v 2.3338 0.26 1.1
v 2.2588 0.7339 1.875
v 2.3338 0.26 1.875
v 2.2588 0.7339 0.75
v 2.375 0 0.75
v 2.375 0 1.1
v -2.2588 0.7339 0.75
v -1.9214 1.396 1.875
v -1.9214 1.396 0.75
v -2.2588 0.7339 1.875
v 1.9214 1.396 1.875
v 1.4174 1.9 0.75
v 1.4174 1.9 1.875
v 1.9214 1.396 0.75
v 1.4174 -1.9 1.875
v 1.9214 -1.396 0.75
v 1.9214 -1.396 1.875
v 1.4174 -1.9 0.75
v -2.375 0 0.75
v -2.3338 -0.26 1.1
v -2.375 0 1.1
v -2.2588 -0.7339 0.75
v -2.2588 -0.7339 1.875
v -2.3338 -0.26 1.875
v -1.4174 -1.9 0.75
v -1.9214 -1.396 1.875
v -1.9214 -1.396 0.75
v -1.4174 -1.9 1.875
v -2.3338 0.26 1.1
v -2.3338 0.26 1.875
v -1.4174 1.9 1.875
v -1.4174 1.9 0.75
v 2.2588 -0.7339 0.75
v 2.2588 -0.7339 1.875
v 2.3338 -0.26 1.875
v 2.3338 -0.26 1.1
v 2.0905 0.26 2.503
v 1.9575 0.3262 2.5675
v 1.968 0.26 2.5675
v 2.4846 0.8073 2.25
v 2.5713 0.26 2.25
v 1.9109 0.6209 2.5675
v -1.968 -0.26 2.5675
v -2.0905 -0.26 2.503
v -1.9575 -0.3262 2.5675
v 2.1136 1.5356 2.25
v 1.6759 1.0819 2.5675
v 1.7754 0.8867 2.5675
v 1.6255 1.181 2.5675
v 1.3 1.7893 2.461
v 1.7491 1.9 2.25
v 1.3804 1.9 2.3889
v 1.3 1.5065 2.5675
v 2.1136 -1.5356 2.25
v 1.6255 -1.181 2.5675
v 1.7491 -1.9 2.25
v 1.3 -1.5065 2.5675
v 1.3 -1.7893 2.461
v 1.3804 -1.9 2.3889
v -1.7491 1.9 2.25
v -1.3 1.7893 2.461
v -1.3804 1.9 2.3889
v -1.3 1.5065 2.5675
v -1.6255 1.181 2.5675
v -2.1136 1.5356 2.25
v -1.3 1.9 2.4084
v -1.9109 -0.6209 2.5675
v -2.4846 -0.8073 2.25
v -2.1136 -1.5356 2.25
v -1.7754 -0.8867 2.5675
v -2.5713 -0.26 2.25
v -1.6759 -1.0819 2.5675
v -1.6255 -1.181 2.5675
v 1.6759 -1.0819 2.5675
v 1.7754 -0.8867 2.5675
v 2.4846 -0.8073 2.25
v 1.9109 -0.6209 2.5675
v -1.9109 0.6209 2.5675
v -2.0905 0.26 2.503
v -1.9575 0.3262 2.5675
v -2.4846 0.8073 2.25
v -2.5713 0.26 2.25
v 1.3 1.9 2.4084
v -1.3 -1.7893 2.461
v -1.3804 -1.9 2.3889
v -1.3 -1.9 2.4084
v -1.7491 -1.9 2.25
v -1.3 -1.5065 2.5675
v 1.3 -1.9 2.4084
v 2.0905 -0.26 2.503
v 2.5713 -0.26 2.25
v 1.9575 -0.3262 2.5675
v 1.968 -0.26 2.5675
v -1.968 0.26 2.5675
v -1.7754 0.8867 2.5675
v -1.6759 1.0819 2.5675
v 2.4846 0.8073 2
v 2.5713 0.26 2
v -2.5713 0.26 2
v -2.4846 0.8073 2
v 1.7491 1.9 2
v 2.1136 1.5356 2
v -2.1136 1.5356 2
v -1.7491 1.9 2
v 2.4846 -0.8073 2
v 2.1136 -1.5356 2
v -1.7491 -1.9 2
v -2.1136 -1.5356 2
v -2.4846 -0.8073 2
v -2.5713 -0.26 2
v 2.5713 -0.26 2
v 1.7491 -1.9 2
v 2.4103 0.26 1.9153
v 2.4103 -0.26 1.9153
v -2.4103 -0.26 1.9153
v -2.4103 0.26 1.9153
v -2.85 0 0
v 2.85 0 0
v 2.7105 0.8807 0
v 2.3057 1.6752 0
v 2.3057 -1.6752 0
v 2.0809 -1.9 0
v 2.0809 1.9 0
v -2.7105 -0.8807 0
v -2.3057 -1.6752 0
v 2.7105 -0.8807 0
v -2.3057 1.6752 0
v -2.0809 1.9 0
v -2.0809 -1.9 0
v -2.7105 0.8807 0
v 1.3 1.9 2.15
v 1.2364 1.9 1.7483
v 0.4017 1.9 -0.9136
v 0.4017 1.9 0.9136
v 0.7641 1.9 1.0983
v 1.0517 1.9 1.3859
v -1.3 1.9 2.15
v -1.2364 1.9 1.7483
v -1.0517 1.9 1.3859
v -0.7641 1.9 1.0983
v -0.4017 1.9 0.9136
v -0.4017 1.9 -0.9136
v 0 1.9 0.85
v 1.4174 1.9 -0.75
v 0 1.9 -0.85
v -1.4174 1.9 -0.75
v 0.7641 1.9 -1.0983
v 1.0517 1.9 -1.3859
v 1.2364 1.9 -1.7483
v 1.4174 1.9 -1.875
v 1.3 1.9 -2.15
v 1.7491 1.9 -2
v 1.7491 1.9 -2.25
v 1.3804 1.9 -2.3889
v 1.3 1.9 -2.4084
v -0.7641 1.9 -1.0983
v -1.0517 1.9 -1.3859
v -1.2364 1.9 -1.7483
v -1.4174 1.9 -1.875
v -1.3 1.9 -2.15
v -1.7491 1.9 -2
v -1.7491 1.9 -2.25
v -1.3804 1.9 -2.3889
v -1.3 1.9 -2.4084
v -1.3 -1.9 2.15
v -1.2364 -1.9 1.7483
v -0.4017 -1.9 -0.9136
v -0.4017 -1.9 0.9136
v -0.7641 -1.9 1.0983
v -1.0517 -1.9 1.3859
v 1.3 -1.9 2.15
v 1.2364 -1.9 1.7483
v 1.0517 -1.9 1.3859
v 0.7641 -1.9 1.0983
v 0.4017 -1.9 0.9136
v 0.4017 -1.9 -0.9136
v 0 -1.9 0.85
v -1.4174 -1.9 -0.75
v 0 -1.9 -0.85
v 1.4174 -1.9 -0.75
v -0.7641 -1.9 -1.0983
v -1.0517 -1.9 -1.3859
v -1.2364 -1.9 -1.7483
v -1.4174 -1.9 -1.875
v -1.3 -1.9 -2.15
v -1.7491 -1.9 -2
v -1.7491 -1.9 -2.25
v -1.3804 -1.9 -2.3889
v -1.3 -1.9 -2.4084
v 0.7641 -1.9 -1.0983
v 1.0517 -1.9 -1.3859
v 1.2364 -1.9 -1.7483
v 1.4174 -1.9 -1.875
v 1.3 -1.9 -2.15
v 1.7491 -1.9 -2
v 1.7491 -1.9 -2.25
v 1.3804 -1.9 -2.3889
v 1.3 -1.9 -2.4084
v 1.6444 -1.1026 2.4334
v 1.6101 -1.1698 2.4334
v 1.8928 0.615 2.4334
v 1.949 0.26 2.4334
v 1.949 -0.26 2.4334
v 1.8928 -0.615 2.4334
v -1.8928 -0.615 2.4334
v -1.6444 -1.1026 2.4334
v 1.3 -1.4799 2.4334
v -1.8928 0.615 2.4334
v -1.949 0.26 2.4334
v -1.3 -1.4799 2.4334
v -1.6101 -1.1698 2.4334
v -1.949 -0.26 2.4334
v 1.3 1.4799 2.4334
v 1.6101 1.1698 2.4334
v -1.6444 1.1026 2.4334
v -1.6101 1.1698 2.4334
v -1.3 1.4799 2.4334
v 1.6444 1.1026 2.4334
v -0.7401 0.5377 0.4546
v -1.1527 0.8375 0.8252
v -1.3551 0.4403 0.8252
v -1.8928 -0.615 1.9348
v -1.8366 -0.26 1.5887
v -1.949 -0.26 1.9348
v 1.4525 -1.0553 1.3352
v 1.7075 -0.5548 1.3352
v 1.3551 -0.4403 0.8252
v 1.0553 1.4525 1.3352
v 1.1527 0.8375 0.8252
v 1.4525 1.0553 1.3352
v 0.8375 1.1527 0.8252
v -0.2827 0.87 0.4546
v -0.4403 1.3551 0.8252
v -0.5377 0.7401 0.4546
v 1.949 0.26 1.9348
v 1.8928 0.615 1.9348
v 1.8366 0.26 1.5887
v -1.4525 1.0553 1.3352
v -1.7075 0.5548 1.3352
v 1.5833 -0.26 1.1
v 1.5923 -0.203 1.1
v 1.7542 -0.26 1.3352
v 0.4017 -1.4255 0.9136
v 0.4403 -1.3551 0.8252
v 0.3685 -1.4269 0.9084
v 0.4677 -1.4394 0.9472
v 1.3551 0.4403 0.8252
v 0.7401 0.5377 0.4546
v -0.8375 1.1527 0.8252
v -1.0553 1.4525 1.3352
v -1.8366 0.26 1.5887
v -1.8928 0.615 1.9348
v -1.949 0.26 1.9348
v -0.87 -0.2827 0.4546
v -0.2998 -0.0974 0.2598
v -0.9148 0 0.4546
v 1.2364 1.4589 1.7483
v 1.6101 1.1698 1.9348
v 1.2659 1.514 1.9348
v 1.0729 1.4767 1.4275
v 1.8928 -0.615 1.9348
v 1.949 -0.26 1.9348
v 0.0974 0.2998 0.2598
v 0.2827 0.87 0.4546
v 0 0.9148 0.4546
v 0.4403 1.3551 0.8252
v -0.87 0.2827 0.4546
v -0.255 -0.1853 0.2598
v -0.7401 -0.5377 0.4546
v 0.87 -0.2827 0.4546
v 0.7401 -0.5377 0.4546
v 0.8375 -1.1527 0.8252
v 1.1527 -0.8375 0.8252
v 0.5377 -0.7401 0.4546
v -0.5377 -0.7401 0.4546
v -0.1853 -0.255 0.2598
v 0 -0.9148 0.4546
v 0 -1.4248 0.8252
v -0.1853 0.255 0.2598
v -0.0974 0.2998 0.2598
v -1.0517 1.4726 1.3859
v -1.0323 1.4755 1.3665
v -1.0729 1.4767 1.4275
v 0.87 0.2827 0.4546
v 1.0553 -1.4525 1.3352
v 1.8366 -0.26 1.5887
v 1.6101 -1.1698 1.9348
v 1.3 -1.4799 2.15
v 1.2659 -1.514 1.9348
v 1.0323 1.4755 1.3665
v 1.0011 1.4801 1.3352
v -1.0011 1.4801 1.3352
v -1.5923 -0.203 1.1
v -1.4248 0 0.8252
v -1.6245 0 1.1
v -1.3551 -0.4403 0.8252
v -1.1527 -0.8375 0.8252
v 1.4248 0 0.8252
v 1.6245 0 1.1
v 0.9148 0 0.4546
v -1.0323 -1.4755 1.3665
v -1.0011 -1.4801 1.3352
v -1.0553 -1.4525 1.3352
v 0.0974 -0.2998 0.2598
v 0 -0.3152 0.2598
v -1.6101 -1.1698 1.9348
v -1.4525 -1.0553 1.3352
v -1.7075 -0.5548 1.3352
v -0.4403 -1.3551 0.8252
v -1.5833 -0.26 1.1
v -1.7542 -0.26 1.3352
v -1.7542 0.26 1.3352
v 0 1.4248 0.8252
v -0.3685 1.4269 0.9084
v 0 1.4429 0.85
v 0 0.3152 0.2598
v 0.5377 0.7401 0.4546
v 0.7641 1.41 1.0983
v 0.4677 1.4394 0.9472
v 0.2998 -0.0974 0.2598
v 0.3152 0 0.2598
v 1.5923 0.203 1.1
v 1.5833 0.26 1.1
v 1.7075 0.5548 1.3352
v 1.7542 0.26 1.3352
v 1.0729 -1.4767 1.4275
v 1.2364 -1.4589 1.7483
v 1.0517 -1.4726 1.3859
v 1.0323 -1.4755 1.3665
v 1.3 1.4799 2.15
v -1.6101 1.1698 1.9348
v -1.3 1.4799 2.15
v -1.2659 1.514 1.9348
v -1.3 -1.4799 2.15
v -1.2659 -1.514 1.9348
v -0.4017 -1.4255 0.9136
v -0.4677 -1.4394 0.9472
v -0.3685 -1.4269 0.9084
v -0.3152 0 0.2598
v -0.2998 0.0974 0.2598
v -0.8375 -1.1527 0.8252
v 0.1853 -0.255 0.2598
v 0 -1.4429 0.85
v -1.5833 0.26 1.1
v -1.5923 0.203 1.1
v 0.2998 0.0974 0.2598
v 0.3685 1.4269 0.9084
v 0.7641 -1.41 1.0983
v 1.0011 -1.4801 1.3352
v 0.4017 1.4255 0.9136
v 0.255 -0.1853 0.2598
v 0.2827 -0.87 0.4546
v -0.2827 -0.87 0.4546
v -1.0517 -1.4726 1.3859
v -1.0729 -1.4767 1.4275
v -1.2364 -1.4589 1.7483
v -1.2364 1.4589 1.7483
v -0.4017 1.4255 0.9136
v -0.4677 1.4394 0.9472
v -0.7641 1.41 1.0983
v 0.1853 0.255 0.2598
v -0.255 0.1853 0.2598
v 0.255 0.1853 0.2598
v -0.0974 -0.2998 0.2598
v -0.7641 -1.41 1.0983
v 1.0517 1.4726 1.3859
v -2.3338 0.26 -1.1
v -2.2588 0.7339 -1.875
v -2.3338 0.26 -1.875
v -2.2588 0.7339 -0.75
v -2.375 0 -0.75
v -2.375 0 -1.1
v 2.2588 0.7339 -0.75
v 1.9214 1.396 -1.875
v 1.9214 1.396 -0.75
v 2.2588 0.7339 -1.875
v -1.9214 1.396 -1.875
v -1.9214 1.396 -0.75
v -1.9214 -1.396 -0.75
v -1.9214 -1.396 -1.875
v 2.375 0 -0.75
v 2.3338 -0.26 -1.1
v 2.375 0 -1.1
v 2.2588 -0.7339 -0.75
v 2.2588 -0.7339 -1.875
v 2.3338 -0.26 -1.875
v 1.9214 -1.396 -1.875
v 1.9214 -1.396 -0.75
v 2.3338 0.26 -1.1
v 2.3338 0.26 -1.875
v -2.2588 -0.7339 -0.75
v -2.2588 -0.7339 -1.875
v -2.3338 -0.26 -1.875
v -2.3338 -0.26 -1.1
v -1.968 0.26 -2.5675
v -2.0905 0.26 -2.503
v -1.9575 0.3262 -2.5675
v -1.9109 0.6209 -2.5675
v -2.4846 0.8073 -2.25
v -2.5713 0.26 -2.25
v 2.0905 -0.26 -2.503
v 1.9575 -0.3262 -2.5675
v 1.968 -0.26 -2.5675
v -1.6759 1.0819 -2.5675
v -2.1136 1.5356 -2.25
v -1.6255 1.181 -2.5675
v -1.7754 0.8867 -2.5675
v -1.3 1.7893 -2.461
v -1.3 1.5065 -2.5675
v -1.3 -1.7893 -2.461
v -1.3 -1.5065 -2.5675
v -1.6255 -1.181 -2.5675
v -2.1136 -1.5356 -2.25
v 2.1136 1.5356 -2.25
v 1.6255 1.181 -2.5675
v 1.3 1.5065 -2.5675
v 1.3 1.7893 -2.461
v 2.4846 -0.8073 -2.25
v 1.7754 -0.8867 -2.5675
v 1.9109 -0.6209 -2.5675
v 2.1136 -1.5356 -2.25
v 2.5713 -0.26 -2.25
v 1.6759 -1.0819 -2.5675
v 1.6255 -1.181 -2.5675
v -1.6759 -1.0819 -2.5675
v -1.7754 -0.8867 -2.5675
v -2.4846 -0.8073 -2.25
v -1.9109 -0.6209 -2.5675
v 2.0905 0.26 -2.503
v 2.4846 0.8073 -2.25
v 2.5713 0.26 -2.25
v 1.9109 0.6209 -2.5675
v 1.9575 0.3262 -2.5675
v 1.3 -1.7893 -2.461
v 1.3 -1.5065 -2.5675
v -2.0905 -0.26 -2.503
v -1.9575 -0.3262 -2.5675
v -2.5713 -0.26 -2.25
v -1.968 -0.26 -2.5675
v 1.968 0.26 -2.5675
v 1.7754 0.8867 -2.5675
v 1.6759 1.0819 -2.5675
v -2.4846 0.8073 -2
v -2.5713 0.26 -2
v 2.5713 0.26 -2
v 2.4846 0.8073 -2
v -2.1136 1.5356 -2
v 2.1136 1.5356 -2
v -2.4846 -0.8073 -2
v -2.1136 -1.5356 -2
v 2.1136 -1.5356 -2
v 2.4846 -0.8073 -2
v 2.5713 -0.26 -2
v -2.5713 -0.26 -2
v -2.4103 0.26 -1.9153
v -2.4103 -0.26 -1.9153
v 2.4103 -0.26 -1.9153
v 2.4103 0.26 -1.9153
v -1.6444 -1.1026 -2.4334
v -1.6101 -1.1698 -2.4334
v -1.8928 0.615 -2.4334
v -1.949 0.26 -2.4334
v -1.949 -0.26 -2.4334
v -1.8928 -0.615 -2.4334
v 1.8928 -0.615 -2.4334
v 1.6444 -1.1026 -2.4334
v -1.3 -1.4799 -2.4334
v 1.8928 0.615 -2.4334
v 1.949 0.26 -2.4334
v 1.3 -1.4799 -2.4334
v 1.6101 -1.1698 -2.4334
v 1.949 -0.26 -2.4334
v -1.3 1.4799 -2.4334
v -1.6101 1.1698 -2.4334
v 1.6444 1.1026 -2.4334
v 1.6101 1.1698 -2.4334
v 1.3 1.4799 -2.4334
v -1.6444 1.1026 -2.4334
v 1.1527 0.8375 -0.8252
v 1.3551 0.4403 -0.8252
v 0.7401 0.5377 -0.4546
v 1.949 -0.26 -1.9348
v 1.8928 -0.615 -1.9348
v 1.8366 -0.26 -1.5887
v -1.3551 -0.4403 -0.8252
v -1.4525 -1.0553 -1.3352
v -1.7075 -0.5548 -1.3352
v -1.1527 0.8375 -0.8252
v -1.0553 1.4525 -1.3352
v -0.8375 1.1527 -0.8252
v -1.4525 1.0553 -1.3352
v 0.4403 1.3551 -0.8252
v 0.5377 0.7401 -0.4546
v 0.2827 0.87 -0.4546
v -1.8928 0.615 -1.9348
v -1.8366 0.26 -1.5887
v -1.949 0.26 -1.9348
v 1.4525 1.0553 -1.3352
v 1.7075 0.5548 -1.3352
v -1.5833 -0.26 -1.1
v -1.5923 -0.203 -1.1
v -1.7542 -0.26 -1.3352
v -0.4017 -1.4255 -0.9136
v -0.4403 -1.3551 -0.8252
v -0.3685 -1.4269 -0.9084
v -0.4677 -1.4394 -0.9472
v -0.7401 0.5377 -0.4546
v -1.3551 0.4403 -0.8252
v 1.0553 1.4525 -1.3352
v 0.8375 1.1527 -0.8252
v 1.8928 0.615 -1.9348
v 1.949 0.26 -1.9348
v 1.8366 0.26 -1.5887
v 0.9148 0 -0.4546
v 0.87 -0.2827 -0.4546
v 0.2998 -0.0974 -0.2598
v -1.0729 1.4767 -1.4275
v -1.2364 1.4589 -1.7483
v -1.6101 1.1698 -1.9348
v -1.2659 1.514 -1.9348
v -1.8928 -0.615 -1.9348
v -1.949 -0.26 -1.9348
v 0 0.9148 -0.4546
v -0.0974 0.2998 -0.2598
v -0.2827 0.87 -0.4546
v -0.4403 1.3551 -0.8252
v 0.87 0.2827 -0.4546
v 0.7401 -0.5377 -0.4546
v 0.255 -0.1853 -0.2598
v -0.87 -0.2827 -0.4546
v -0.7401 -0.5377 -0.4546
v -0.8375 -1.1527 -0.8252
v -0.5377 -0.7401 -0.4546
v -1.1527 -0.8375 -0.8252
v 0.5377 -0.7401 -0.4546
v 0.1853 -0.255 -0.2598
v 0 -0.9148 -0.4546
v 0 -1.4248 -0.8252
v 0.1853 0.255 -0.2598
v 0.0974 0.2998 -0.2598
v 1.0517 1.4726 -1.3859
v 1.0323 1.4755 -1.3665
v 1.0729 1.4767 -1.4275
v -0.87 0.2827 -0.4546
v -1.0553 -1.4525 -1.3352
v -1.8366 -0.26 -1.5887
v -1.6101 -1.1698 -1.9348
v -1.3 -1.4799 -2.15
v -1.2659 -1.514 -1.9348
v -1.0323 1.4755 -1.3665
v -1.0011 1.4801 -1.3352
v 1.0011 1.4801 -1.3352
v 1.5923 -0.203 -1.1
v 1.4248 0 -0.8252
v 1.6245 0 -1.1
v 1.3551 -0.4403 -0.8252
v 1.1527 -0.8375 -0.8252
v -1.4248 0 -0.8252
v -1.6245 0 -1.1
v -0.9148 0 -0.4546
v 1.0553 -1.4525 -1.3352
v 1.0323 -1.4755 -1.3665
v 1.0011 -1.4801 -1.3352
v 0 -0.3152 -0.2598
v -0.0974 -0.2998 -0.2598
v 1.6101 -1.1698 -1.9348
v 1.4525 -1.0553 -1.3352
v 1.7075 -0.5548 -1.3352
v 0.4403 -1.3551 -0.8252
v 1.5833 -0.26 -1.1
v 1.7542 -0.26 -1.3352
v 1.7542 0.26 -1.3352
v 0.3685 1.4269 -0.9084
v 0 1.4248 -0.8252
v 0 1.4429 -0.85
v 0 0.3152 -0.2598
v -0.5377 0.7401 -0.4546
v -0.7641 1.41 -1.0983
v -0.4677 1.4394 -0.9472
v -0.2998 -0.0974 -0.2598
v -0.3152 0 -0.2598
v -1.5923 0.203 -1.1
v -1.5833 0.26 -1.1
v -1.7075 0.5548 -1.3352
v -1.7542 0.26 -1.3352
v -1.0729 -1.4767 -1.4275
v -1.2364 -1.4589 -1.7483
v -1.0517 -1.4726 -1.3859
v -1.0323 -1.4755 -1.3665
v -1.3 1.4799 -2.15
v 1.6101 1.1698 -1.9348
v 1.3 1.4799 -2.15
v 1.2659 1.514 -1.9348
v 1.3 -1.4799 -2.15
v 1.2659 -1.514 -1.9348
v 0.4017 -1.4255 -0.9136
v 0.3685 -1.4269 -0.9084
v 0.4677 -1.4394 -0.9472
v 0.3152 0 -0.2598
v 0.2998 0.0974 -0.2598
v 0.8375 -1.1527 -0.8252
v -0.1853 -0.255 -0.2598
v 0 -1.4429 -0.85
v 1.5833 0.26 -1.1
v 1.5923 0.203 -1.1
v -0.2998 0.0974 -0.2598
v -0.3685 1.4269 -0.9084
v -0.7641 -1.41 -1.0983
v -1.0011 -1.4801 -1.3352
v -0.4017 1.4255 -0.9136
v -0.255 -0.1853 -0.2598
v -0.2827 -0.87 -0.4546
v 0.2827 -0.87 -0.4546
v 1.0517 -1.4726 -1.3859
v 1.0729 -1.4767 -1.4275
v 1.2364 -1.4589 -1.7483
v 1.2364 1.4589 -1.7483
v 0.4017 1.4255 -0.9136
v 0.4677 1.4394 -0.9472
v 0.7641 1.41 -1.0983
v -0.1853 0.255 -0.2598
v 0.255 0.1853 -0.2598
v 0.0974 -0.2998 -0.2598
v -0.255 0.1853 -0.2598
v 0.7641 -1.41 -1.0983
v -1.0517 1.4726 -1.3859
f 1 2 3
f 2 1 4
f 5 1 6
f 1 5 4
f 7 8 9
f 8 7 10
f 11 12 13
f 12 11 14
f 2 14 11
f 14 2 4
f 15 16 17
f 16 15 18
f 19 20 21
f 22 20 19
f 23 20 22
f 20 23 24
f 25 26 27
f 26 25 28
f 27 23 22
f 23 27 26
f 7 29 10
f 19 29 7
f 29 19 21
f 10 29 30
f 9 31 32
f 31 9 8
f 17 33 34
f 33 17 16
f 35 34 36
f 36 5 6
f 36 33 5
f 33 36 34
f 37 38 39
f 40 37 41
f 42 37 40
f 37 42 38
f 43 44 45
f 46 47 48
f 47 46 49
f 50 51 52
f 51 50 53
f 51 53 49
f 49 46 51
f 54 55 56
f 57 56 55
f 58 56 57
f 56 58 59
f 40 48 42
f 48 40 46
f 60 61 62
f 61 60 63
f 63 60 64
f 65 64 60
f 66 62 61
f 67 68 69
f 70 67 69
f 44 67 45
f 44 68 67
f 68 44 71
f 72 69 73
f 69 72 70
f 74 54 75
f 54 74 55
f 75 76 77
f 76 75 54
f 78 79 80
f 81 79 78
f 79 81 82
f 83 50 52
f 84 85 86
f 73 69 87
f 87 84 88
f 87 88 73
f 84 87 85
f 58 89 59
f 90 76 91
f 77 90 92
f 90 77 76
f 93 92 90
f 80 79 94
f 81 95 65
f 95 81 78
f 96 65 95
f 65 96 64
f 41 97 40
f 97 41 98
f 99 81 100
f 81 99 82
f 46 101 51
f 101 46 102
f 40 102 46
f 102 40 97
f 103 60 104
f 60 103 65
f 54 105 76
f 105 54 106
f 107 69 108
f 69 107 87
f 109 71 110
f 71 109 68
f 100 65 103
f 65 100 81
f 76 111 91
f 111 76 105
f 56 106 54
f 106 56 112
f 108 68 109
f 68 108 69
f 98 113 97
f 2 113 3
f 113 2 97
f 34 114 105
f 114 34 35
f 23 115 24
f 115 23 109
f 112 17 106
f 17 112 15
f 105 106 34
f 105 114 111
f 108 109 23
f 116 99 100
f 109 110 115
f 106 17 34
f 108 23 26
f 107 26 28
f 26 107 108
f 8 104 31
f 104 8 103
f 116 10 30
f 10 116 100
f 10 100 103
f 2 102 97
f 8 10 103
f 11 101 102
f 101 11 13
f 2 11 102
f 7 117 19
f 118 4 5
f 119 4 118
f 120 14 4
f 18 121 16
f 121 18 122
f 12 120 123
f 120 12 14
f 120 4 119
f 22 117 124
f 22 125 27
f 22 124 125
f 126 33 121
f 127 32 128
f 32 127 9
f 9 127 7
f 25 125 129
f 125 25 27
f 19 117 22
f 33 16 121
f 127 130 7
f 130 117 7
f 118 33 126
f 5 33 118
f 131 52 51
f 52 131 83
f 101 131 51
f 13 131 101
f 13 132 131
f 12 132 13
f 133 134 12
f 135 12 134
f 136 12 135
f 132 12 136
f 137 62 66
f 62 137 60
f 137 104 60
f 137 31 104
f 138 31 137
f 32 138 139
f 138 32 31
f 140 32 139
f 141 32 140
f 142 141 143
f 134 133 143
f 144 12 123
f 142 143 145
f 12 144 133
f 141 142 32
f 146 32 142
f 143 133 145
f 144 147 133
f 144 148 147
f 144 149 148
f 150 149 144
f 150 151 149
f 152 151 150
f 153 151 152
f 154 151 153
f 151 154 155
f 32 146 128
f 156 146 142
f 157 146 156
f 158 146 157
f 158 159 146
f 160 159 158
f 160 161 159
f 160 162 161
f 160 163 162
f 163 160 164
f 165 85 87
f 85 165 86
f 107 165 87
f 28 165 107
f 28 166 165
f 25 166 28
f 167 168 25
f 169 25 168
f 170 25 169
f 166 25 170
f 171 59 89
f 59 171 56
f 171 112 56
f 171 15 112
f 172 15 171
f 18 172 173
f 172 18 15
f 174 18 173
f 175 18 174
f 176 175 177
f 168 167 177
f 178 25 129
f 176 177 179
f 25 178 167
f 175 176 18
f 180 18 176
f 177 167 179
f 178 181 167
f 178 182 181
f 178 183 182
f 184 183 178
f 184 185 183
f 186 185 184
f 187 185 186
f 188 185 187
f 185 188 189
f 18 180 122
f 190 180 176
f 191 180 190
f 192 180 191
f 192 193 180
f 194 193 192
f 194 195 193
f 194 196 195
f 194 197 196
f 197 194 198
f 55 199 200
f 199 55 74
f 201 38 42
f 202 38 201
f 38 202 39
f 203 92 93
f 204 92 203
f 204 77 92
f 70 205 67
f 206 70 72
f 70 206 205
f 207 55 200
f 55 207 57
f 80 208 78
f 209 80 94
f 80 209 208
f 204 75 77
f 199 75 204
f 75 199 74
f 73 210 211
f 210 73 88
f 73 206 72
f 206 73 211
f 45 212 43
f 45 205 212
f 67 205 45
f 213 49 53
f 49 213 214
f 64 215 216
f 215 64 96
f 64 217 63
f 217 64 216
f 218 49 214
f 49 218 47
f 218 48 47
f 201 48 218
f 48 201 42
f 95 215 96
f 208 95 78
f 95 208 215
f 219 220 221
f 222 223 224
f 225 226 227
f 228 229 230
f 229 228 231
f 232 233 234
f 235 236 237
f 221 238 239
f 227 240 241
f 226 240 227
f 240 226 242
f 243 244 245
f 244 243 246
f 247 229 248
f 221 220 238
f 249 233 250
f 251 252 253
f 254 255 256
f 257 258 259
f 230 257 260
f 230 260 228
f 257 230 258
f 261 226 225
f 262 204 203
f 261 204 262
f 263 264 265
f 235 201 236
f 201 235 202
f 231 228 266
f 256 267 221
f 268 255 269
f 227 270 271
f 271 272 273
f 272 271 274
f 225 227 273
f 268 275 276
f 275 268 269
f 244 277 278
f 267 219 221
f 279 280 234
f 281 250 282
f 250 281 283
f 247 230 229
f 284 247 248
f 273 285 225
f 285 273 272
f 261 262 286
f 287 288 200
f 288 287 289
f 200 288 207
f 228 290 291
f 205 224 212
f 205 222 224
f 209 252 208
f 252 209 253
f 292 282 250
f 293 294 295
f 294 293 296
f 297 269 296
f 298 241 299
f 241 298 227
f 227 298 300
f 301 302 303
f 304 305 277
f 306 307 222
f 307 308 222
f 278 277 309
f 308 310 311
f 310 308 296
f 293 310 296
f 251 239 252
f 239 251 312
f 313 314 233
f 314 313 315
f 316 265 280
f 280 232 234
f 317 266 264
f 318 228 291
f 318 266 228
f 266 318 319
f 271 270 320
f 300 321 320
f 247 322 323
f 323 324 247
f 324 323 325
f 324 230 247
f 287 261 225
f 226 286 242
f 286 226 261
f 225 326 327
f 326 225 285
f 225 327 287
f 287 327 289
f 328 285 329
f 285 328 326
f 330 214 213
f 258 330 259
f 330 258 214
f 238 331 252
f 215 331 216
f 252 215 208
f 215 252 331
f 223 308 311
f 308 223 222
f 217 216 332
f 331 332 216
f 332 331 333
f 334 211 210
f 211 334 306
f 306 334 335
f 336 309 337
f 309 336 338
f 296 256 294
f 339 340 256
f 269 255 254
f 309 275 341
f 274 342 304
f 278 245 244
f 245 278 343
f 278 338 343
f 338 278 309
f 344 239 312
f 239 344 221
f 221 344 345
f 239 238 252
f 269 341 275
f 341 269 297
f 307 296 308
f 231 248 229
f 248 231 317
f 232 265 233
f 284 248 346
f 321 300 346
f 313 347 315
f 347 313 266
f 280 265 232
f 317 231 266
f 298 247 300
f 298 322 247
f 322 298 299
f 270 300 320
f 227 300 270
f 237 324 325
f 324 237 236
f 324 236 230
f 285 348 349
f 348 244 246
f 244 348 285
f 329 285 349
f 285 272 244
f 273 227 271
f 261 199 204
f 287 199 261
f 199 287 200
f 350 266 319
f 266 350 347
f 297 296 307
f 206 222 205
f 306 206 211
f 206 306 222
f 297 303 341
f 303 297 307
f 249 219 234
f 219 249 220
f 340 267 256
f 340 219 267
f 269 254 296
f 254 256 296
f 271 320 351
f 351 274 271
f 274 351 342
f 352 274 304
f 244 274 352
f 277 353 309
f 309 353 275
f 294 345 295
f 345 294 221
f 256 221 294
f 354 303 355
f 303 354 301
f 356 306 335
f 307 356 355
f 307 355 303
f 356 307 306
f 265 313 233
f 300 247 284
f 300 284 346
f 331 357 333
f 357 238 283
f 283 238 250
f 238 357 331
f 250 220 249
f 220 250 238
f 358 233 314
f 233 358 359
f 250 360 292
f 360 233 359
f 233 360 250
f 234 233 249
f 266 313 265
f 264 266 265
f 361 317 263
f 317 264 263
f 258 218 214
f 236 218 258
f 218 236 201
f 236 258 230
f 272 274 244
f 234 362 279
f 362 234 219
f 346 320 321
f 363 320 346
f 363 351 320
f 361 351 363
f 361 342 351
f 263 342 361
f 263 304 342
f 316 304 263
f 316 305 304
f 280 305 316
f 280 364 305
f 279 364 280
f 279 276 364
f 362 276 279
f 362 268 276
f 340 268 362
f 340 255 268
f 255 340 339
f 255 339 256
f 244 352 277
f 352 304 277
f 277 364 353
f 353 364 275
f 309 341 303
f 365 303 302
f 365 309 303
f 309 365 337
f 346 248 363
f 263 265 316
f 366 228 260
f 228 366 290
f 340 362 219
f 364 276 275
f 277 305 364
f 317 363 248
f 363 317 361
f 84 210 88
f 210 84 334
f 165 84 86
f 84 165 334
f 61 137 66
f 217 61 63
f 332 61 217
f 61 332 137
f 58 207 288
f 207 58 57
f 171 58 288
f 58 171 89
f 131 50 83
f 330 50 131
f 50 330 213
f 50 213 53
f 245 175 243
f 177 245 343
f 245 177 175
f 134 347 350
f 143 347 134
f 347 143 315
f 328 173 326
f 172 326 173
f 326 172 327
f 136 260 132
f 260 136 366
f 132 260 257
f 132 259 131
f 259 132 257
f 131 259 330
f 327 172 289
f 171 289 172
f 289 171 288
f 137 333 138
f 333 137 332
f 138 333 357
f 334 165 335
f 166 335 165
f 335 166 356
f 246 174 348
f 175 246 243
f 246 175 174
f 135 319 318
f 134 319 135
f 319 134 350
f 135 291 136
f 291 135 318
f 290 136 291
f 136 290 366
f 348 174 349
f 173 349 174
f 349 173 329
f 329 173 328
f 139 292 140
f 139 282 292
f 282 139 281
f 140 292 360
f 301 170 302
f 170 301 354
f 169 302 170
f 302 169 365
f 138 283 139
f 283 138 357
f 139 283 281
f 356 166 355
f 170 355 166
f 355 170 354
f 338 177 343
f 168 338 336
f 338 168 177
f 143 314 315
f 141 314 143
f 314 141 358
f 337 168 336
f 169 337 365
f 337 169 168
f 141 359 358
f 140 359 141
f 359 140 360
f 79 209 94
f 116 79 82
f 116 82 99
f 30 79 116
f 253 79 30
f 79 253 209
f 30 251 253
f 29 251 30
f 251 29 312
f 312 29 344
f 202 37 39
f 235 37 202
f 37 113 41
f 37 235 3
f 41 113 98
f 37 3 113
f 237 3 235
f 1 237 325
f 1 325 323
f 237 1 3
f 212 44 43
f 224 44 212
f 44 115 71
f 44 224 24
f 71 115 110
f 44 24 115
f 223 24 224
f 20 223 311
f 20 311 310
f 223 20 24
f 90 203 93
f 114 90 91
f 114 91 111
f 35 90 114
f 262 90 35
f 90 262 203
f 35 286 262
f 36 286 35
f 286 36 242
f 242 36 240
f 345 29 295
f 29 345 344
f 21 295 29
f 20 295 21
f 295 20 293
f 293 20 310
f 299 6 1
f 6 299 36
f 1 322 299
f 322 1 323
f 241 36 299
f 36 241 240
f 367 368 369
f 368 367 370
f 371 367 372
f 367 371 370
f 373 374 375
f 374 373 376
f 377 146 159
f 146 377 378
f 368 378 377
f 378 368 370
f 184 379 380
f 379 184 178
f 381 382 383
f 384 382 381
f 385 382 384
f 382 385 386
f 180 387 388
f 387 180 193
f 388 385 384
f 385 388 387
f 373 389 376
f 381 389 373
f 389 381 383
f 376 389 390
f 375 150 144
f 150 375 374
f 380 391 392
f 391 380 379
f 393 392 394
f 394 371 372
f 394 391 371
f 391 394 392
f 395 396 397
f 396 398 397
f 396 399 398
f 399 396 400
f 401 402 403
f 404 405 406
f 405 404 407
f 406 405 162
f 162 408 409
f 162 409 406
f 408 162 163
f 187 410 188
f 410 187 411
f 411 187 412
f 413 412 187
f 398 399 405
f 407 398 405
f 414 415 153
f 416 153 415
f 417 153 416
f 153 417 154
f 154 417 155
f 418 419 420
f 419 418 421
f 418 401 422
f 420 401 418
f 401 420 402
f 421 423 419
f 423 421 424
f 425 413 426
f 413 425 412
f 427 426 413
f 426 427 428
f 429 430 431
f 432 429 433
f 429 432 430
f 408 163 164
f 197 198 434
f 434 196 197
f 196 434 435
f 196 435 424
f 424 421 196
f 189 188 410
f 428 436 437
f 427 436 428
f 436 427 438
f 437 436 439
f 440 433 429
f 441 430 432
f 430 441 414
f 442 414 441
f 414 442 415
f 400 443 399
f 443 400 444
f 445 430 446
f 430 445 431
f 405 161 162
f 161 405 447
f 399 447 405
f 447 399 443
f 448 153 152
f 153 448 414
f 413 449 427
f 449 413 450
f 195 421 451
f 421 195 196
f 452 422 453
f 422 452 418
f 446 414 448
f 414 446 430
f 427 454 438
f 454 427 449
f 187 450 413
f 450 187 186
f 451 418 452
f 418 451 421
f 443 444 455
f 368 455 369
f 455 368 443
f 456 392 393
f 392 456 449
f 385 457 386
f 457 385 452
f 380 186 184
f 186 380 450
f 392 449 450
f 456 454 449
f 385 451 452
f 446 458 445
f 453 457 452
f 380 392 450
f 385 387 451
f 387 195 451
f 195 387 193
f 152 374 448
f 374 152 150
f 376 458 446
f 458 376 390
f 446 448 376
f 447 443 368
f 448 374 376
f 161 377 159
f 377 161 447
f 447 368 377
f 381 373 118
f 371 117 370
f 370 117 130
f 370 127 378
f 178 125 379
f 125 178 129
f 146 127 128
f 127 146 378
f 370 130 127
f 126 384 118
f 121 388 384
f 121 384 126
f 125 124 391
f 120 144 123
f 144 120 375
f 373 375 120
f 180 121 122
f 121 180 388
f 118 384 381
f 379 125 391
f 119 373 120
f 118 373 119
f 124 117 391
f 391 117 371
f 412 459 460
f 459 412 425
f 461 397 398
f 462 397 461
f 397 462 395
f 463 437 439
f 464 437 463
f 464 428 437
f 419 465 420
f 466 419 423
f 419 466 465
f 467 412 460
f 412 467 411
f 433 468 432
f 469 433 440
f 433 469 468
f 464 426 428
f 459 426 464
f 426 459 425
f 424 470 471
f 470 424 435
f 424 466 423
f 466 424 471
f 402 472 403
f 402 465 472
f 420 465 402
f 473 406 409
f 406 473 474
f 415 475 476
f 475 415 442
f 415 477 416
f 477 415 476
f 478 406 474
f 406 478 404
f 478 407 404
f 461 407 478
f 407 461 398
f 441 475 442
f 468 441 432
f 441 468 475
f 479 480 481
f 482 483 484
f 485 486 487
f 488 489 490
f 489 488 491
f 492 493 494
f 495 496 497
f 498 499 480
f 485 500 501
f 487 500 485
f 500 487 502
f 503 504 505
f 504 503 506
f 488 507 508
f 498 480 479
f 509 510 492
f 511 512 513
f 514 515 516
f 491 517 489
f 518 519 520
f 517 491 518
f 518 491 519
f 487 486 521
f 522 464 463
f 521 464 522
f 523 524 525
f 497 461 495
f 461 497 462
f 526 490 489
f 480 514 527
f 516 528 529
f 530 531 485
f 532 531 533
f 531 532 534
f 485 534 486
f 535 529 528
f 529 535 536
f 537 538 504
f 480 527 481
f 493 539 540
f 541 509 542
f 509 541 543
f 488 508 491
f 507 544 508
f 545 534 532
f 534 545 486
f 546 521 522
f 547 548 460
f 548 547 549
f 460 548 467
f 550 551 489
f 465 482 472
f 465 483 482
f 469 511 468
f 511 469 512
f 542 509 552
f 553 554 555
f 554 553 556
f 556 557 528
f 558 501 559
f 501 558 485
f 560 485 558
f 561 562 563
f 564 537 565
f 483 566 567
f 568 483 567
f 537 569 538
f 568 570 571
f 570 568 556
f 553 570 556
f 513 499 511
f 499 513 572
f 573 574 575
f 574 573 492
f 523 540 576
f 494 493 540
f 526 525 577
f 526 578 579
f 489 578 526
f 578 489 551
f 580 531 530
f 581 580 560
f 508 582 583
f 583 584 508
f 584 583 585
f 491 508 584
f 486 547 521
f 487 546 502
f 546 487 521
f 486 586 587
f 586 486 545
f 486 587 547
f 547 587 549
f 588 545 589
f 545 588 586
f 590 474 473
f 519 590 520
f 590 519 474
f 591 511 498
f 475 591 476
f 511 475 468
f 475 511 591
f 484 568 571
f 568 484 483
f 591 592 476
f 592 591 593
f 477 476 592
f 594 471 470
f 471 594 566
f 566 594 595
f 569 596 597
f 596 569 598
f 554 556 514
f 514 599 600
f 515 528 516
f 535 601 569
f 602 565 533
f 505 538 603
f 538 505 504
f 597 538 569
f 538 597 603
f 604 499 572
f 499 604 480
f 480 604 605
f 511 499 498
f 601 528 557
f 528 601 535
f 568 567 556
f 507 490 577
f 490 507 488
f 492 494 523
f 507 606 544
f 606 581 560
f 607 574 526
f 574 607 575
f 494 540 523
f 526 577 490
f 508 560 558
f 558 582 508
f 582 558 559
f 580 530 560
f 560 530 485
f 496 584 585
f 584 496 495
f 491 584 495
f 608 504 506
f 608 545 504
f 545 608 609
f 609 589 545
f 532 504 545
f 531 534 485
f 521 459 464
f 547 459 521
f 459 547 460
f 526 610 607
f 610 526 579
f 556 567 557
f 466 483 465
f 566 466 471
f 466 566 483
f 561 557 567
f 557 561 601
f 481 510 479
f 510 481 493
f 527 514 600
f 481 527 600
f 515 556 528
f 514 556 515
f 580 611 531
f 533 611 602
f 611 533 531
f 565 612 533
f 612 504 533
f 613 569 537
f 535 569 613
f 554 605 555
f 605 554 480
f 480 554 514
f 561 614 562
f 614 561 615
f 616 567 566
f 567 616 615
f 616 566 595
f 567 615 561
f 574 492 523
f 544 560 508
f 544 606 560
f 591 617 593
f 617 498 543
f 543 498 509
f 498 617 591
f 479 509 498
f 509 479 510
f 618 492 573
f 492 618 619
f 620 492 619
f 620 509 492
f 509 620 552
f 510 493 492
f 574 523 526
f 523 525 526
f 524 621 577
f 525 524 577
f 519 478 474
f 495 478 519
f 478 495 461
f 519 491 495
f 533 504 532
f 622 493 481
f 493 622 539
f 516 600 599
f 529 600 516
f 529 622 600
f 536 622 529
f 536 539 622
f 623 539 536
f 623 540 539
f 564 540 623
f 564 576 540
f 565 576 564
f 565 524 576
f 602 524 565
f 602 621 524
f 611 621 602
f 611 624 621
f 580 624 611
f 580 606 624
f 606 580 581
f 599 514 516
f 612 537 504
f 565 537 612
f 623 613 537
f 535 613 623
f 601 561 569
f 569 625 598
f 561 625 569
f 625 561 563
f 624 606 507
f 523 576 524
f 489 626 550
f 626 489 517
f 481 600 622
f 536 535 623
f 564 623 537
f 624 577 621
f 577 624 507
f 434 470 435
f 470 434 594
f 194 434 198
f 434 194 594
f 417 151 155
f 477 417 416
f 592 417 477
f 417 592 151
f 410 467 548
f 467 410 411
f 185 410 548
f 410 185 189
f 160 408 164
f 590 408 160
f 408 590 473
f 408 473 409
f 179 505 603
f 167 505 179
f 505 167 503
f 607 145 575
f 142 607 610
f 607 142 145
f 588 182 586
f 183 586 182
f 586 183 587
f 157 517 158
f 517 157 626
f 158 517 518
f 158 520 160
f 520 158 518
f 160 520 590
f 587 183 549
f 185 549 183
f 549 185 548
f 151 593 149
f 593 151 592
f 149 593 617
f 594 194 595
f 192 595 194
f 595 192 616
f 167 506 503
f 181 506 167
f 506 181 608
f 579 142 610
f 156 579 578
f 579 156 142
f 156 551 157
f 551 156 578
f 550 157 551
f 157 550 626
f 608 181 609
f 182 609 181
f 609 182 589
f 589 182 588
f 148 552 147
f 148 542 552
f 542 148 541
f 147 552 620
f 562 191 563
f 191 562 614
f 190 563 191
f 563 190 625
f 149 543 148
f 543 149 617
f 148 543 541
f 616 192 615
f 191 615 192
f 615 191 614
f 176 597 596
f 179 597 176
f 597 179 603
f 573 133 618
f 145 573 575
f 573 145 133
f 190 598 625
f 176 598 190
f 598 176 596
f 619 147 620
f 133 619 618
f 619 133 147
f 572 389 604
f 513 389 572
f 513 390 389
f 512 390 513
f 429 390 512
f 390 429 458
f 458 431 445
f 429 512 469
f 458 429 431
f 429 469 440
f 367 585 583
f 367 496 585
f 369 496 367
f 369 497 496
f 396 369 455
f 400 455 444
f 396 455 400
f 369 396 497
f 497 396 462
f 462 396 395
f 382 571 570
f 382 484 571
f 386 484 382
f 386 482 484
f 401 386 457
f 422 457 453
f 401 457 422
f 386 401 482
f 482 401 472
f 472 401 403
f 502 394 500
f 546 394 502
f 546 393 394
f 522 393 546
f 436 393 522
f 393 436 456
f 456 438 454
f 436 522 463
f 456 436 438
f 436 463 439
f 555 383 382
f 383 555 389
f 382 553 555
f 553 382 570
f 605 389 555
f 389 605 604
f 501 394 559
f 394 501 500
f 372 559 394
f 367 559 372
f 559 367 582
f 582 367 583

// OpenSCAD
module pin(
pin_d = 5,
pin_h = 6,
pin_int_l = 5,
pin_int_d = 2,
extraL = 1,
object = 0,
pin_res = 20,
expand = 0,
rotate = 0
){
pin_d = pin_d + expand;
rotate([0,rotate,0])
difference(){
    union(){
    //cylinder
    cylinder( h = pin_h-1, d = pin_d, $fn=pin_res);
    //top
    translate([0,0,pin_h-1]) cylinder( h = 1+expand, d1 = pin_d*1.1, d2 = pin_d*0.70, $fn=pin_res);
    translate([0,0,pin_h-1.5]) cylinder( h = 0.5, d1 = pin_d*1.1, d2 = pin_d*1.1, $fn=pin_res);
    translate([0,0,pin_h-1.75-expand]) cylinder( h = 0.25+expand, d1 = pin_d, d2 = pin_d*1.1, $fn=pin_res);

    if(object == 0){
    translate([0,0,-0.05]) cylinder( h = 1.55, d1 = pin_d*1.2, d2 = pin_d, $fn=pin_res);
    translate([0,0,-1.55]) cylinder( h = 1.55, d1 = pin_d*1.2, d2 = pin_d*1.2, $fn=pin_res);
    if(extraL == 1){
    translate([0,0,pin_h]) cylinder( h = 4.5, d1 = pin_d*0.7, d2 = pin_d*0.7, $fn=pin_res);
    }
    }
    if(object == 1){
    translate([0,0,0]) cylinder( h = 1.5, d1 = pin_d*1.2, d2 = pin_d, $fn=pin_res);
    }
    }
if(object == 1 || object == 2){
//outside cut
translate([-pin_d, pin_d*0.4, -1]) cube([pin_d*2,pin_d,pin_h*1.2], $fn=pin_res);
translate([-pin_d, -pin_d*0.4-pin_d, -1]) cube([pin_d*2,pin_d,pin_h*1.2], $fn=pin_res);
}
if(object == 1){
//inside cut
//cylinder
translate([0, 0, pin_h/2 + (pin_h - pin_int_l)]) cylinder( d1 = pin_int_d*1.5, d2 = pin_int_d*1.8, h =pin_h, center = true, $fn=pin_res); 
//sphere
translate([0, 0, pin_int_d*1.5/2+0.6]) sphere (d =pin_int_d*1.55, $fn=pin_res);  
//cube
translate([0, 0, pin_h/2 + (pin_h - pin_int_l)]) cube([pin_int_d,pin_d,pin_h], center = true, $fn=pin_res);
//cylinder bottom
translate([0, 0, (pin_h - pin_int_l)])rotate([90,0,0])cylinder ( h = pin_d, d =pin_int_d,center = true, $fn=pin_res);  

//cube 2
rotate([0,0,90]) translate([0, 0, pin_h*0.9]) cube([pin_int_d*0.2,pin_d*1.5,pin_h], center = true, $fn=pin_res);

}
}
}

scale(v = [0.5,0.5,0.5]){
pin(pin_d = 9.5, pin_h = 5.5, pin_int_d = 5.2, pin_int_l = 1.2, object = 1);
pin(pin_d = 9.5, pin_h = 5.5, pin_int_d = 5.2, pin_int_l = 1.2, object = 1, rotate = 180);
}
